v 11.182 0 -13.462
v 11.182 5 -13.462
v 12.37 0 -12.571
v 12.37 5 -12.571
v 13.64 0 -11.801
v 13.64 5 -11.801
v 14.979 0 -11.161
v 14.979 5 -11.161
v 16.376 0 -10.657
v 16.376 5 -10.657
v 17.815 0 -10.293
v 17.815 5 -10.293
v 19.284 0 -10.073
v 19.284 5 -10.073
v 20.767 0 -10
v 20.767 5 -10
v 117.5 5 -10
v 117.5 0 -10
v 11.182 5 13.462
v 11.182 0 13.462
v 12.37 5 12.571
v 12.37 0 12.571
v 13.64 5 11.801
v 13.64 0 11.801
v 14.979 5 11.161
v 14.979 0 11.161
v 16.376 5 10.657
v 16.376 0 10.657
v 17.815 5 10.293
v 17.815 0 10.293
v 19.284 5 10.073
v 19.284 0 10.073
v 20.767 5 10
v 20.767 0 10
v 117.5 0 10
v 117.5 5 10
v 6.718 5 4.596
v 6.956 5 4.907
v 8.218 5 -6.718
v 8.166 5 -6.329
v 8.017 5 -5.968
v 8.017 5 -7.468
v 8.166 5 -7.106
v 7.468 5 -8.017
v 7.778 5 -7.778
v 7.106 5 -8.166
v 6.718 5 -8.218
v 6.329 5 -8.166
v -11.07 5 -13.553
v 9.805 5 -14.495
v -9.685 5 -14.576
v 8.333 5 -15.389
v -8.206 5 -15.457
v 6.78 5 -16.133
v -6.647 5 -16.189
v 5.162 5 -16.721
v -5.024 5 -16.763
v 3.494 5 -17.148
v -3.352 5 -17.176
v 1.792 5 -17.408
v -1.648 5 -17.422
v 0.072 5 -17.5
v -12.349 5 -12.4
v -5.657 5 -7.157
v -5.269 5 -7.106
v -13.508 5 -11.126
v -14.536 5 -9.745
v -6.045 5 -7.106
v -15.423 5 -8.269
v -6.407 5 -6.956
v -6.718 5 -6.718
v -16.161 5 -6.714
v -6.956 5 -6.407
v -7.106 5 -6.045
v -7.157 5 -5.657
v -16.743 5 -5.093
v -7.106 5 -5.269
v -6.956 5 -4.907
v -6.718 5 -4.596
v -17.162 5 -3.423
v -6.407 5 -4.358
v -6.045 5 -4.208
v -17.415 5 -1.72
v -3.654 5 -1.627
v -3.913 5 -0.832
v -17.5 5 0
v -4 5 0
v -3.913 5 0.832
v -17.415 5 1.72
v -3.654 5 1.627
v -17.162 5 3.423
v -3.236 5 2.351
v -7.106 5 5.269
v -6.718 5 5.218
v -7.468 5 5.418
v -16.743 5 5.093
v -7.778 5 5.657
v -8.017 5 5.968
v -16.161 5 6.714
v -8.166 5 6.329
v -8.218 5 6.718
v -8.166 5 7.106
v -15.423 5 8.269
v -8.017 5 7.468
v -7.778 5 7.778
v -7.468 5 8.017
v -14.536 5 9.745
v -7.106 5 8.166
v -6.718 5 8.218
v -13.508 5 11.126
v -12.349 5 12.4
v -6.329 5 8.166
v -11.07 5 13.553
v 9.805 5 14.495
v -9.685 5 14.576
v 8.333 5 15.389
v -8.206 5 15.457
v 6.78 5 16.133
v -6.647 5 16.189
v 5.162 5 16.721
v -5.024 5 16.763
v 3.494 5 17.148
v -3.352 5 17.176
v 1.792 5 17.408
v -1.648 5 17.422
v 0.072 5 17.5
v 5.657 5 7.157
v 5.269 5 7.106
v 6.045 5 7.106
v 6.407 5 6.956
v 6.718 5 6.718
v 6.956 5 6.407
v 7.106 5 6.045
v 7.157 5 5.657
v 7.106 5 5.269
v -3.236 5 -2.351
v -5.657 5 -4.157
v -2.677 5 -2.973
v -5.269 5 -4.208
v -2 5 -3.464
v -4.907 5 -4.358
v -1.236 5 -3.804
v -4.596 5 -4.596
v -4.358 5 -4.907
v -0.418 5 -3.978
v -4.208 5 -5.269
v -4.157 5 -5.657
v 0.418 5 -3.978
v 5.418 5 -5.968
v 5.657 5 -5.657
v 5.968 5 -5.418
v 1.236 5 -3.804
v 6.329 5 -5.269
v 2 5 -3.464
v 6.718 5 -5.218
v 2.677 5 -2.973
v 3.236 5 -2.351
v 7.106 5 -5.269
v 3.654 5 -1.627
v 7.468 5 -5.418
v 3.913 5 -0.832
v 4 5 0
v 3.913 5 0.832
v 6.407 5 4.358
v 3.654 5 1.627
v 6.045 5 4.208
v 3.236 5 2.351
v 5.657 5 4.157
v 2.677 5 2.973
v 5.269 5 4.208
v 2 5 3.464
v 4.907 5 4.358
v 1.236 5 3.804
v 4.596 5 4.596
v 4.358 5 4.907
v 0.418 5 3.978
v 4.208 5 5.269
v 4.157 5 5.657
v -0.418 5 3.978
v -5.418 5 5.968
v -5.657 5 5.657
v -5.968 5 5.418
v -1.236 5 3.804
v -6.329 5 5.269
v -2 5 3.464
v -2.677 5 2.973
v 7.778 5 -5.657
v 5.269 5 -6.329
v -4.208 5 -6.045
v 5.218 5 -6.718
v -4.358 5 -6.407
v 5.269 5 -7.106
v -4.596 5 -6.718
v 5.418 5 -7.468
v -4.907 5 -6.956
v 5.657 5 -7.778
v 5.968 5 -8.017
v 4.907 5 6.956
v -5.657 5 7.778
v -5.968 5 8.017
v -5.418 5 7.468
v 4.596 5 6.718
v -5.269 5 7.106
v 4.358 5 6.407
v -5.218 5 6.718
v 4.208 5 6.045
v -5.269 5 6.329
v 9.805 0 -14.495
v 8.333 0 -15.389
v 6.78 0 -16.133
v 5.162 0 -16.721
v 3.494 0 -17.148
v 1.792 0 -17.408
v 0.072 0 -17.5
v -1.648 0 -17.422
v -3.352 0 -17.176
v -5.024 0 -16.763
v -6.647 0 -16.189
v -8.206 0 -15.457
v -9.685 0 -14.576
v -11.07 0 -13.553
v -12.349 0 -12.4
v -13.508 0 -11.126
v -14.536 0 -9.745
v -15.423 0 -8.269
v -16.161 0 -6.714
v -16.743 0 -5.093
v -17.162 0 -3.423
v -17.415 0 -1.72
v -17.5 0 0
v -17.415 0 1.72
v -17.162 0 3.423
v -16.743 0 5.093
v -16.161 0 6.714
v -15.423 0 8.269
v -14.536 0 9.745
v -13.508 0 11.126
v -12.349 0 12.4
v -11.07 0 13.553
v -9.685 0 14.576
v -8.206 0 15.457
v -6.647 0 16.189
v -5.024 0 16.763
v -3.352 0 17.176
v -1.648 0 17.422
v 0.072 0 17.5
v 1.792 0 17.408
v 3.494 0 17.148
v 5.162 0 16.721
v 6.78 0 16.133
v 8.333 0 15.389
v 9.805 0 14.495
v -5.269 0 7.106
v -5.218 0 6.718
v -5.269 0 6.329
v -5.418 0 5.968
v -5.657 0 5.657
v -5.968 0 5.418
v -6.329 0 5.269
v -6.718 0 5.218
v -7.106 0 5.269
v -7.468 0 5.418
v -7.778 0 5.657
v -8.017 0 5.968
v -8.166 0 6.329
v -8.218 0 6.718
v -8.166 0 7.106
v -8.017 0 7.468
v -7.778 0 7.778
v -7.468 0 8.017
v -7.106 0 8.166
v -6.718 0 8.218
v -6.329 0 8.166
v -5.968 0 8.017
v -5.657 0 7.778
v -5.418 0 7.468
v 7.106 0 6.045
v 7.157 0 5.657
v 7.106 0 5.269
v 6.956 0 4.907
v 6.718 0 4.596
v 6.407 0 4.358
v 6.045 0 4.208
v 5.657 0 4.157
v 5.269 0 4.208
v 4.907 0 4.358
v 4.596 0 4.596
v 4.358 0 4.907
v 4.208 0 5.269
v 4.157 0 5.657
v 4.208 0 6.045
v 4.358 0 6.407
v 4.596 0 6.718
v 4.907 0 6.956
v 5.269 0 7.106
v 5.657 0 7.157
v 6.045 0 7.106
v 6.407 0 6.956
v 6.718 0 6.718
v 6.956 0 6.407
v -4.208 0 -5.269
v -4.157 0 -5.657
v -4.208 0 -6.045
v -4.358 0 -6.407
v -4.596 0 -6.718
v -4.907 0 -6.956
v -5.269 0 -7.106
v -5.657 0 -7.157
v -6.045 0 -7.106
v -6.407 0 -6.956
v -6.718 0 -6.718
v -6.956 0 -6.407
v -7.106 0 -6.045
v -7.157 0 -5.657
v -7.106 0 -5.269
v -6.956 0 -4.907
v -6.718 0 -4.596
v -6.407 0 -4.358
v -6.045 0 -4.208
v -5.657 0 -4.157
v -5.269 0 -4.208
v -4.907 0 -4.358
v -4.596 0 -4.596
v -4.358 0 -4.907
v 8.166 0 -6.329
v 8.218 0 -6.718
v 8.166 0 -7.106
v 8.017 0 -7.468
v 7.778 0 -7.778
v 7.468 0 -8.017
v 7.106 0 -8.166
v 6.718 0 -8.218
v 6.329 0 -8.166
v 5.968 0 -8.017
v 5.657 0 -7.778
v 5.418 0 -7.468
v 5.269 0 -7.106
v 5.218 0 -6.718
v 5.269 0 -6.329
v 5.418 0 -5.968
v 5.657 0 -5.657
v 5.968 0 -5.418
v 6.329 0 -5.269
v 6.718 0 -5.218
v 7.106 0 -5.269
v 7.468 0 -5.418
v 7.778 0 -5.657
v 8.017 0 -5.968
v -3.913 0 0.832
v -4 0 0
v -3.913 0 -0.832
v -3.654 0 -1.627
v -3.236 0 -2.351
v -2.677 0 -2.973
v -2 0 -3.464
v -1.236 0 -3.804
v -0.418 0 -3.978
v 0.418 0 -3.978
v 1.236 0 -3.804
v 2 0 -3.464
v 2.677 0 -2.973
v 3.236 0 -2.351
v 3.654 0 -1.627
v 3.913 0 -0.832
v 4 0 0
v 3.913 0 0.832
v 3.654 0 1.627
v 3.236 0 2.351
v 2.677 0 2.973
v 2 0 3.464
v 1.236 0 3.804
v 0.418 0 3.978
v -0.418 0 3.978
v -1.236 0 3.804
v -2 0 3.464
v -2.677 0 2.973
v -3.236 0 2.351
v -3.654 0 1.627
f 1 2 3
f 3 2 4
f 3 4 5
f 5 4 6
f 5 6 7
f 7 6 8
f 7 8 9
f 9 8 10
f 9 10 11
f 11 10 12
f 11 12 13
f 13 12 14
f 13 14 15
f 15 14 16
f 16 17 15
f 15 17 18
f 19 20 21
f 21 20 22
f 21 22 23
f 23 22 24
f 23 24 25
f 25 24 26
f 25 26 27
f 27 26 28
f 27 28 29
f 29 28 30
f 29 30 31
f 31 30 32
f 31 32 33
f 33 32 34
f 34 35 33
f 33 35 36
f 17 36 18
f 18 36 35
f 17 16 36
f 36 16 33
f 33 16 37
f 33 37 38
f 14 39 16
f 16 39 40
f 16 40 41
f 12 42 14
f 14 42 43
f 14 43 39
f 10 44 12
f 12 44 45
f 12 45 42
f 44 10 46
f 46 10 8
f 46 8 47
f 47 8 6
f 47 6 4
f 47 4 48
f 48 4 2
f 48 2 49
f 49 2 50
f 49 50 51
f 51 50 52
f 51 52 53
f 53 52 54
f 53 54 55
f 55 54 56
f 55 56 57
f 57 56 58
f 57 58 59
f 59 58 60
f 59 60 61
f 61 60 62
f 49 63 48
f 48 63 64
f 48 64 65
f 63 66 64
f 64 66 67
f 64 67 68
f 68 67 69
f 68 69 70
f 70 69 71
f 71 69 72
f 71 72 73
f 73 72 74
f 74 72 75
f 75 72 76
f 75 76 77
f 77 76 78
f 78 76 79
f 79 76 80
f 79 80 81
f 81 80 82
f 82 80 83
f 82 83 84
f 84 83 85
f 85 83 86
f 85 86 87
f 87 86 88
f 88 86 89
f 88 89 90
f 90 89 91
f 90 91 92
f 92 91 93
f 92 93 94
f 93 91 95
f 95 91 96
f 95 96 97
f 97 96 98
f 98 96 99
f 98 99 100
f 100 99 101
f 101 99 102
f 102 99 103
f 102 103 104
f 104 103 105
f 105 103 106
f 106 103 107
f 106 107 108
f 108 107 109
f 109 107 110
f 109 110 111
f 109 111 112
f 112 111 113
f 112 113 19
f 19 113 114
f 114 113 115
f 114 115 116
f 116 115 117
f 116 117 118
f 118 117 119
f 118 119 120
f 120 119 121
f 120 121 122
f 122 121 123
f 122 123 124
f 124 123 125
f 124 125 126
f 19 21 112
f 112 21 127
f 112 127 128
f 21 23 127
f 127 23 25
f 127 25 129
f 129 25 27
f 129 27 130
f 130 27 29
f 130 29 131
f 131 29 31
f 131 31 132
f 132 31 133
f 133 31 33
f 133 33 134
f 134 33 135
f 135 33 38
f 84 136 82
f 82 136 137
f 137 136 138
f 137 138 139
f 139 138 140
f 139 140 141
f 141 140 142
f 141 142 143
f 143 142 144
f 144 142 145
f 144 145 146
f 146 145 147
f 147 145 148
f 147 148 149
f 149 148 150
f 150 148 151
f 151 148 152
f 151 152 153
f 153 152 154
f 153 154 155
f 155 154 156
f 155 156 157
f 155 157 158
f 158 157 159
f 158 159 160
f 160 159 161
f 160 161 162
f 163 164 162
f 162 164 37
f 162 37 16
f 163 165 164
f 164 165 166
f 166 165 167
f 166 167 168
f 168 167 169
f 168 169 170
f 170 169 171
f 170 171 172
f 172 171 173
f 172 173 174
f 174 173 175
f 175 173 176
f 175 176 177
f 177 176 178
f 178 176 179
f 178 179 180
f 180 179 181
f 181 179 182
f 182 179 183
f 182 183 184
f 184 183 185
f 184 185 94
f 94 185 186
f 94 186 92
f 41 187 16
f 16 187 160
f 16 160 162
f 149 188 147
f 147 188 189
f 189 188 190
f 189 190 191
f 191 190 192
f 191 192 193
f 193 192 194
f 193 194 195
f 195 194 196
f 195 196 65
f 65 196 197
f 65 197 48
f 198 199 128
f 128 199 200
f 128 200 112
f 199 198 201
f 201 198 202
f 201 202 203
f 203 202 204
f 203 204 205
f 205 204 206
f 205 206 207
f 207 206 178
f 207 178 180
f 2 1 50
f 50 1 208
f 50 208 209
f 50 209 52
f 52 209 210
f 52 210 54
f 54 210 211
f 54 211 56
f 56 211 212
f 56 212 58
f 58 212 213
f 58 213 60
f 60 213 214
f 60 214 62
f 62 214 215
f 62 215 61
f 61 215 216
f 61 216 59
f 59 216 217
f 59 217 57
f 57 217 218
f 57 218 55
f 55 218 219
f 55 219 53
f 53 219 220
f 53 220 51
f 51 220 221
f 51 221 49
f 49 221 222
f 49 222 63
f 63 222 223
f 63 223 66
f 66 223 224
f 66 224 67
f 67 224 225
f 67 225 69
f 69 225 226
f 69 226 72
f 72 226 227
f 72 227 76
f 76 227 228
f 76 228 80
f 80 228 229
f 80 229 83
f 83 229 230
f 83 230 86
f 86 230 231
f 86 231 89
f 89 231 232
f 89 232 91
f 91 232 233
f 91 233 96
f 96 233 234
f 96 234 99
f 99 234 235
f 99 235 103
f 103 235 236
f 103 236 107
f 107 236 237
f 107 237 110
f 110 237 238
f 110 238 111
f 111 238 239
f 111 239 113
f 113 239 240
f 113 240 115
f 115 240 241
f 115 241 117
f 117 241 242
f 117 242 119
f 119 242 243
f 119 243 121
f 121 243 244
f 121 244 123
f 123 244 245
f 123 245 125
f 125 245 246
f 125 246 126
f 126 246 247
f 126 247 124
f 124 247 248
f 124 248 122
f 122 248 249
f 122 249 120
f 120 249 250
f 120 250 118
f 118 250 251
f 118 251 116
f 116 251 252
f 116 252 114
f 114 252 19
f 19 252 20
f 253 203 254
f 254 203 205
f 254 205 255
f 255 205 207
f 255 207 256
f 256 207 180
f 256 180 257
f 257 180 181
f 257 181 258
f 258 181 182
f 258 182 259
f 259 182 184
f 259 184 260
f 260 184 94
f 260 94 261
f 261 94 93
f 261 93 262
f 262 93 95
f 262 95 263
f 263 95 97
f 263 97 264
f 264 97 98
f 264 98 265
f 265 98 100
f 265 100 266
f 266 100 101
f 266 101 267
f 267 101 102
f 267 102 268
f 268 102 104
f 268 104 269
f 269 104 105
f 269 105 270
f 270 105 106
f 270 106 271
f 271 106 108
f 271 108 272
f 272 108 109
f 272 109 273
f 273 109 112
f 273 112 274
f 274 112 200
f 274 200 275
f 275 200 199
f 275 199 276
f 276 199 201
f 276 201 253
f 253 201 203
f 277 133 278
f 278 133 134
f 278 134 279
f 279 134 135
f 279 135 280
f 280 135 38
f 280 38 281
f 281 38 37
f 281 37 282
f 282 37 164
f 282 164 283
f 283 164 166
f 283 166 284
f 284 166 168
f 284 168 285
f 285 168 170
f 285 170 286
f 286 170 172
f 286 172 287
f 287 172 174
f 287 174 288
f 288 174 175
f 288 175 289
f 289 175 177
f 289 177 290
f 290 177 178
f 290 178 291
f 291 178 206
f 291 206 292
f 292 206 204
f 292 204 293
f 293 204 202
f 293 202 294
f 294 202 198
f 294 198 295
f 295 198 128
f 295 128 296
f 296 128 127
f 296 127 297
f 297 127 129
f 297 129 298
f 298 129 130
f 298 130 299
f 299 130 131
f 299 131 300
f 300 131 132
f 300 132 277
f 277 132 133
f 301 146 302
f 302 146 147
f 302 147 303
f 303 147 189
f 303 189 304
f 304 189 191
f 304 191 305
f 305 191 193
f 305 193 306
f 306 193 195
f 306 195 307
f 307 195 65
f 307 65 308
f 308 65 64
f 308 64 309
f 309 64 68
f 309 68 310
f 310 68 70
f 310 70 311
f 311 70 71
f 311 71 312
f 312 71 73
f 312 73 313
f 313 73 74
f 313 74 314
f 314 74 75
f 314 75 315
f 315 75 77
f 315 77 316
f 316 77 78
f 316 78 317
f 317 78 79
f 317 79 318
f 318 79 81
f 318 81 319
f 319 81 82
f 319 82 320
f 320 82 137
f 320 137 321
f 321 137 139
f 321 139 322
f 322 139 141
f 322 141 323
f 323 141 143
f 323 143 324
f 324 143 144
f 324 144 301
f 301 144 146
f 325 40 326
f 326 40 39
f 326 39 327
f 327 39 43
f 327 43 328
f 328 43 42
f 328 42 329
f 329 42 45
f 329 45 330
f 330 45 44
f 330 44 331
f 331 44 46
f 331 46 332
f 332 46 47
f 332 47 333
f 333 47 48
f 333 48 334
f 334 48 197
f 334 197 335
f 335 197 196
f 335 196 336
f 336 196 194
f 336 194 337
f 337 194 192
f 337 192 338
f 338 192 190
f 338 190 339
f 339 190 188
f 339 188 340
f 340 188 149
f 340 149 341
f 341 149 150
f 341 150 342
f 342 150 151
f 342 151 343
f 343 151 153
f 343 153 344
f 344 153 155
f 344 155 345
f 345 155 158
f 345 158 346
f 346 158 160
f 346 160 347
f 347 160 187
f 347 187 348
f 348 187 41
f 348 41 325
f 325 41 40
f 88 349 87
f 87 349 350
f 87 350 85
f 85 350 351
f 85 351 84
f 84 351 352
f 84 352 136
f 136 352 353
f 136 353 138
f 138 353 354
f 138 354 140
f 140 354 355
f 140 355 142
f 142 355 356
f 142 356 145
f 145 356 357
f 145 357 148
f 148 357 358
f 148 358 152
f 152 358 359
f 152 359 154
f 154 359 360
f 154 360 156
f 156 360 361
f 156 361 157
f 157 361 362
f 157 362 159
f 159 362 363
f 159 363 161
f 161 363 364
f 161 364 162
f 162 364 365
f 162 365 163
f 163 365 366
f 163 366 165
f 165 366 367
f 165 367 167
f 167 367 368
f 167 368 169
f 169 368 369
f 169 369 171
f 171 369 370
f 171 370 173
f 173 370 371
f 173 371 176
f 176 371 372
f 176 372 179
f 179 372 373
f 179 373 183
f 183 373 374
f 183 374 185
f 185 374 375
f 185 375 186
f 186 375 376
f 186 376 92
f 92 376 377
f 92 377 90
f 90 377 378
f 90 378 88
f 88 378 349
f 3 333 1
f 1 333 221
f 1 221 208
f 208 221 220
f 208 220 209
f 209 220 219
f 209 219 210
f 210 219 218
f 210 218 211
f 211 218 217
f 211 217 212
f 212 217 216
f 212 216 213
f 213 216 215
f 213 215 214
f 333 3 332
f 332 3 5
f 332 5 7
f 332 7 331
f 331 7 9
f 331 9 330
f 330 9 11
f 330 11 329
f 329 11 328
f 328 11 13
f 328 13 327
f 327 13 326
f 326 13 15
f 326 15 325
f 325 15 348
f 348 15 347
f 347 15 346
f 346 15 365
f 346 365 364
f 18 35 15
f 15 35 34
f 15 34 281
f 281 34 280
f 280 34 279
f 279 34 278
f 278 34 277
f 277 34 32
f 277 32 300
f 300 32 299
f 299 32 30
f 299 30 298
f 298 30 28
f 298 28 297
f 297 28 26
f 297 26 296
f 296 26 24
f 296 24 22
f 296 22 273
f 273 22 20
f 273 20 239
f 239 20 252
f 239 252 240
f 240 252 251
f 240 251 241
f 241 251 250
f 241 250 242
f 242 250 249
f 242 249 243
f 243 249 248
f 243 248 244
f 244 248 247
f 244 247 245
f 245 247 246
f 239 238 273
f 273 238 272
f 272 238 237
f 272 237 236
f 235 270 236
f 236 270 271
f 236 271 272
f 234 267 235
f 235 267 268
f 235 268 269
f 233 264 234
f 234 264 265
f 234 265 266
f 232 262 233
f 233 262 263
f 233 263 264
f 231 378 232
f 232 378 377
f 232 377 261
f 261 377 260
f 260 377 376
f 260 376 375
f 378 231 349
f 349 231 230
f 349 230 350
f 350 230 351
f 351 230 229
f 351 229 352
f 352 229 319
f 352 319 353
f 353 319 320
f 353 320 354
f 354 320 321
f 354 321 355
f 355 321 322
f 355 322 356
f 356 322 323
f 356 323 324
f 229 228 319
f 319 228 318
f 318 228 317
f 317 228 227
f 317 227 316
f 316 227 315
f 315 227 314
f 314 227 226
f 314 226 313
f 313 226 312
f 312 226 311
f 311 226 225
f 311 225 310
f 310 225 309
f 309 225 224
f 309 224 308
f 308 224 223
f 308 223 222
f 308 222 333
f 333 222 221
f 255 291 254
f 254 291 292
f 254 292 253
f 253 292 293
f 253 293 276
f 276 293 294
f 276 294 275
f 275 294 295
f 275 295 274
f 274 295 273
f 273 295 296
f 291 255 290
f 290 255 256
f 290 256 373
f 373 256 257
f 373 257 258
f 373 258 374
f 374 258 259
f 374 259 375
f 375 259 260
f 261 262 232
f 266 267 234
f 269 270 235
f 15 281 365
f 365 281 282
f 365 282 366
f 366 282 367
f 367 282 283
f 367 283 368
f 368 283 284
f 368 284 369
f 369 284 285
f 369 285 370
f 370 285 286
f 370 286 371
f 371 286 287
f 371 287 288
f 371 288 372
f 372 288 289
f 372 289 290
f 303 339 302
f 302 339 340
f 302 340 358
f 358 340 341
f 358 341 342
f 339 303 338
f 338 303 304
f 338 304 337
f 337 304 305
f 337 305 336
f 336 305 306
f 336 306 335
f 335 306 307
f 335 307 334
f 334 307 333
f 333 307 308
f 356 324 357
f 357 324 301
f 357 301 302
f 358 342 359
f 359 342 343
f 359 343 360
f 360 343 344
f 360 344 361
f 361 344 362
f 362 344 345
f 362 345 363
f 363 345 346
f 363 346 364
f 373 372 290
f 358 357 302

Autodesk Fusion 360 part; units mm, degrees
sketch "Sketch1" plane through (0, 0, 0) normal (0, 1, 0) x (1, 0, 0)
  circle A0 centre (0, 0) radius 17.5
  circle A1 centre (0, 0) radius 4
  dimension "d1" = 35
  dimension "d4" = 8
extrude "Extrude1" add sketch "Sketch1" along normal blind 5 makes body 1
sketch "Sketch2" plane through (0, 0, 0) normal (0, 1, 0) x (1, 0, 0)
  line L0 (17.5, 10) -> (117.5, 10)
  line L1 (117.5, 10) -> (117.5, -10)
  line L2 (117.5, -10) -> (17.5, -10)
  line L3 (17.5, -10) -> (17.5, 10)
  line L4 (17.5, 10) -> (117.5, -10) construction
  line L5 (117.5, 10) -> (17.5, -10) construction
  circle A0 centre (0, 0) radius 17.5
  point P0 (67.5, 0)
  dimension "d5" = 100
  dimension "d6" = 20
extrude "Extrude2" add sketch "Sketch2" along normal up to surface (5 mm away) separate body contours L0 L1 L2 L3 makes body 2
sketch "Sketch3" plane through (0, 5, 0) normal (0, 1, 0) x (-1, 0, 0)
  circle A0 centre (0, 0) radius 4
  circle A1 centre (0, 0) radius 17.5
  circle A2 centre (0, 0) radius 9.5
  circle A3 centre (0, 0) radius 8
  circle A4 centre (5.6569, -5.6569) radius 1.5
  circle A5 centre (-5.6569, 5.6569) radius 1.5
  circle A6 centre (6.7175, 6.7175) radius 1.5
  circle A7 centre (-6.7175, -6.7175) radius 1.5
  line L0 (0, 0) -> (-6.7175, -6.7175)
  line L1 (0, 0) -> (5.6569, -5.6569)
  line L2 (0, 0) -> (6.7175, 6.7175)
  line L3 (0, 0) -> (-5.6569, 5.6569)
  line L4 (0, 0) -> (-4, 0)
  dimension "d11" = 19
  dimension "d12" = 16
  dimension "d13" = 3
  dimension "d14" = 3
  dimension "d15" = 3
  dimension "d16" = 3
  dimension "d17" = 45
  dimension "d19" = 45
  dimension "d20" = 45
  dimension "d39" = 45
extrude "Extrude3" cut sketch "Sketch3" against normal blind 5 contours A2 A6 L2 | A2 A6 L2 | A3 A4 L1 | A3 A4 L1 | A3 A5 L3 | A3 A5 L3 | A3 A5 | A2 A6 | A2 A7 L0 | A2 A7 L0 | A3 A4 | A2 A7 bodies 1
sketch "Sketch4" plane through (0, 5, 0) normal (0, 1, 0) x (-1, 0, 0)
  line L0 (-17.5, -10) -> (-17.5, 10)
  line L1 (-17.5, 10) -> (-117.5, 10)
  line L2 (-117.5, 10) -> (-117.5, -10)
  line L3 (-117.5, -10) -> (-17.5, -10)
  arc A0 (-17.5, -10) -> (0, -17.5) centre (-1.8213, 2.4169) ccw
  arc A1 (0, 17.5) -> (-17.5, 10) centre (-1.8213, -2.4169) ccw
  line L4 (0, 17.5) -> (-15, 0)
  line L5 (-15, 0) -> (0, -17.5)
  dimension "d26" = 17.5
  dimension "d28" = 17.5
  dimension "d29" = 20
  dimension "d30" = 20
sketch "Sketch5" plane through (0, 5, 0) normal (0, 1, 0) x (-1, 0, 0)
  line L0 (-17.5, -10) -> (-17.5, 10)
  line L1 (-17.5, 10) -> (-117.5, 10)
  line L2 (-117.5, 10) -> (-117.5, -10)
  line L3 (-117.5, -10) -> (-17.5, -10)
  line L4 (-17.5, -10) -> (-12.5, -10)
  line L5 (-12.5, -10) -> (-12.5, 10)
  line L6 (-12.5, 10) -> (-17.5, 10)
  line L7 (-17.5, 10) -> (-17.5, -10)
  dimension "d33" = 5
extrude "Extrude5" add sketch "Sketch5" against normal blind 5 contours L0 L4 L5 L6 L7 bodies 1 2
fillet "Fillet1" radius 15 2 edges at (14.3614, 2.5, 10) (14.3614, 2.5, -10) on bodies 1
equation "d26 = ( 35 / 2 ) * 1 mm"
